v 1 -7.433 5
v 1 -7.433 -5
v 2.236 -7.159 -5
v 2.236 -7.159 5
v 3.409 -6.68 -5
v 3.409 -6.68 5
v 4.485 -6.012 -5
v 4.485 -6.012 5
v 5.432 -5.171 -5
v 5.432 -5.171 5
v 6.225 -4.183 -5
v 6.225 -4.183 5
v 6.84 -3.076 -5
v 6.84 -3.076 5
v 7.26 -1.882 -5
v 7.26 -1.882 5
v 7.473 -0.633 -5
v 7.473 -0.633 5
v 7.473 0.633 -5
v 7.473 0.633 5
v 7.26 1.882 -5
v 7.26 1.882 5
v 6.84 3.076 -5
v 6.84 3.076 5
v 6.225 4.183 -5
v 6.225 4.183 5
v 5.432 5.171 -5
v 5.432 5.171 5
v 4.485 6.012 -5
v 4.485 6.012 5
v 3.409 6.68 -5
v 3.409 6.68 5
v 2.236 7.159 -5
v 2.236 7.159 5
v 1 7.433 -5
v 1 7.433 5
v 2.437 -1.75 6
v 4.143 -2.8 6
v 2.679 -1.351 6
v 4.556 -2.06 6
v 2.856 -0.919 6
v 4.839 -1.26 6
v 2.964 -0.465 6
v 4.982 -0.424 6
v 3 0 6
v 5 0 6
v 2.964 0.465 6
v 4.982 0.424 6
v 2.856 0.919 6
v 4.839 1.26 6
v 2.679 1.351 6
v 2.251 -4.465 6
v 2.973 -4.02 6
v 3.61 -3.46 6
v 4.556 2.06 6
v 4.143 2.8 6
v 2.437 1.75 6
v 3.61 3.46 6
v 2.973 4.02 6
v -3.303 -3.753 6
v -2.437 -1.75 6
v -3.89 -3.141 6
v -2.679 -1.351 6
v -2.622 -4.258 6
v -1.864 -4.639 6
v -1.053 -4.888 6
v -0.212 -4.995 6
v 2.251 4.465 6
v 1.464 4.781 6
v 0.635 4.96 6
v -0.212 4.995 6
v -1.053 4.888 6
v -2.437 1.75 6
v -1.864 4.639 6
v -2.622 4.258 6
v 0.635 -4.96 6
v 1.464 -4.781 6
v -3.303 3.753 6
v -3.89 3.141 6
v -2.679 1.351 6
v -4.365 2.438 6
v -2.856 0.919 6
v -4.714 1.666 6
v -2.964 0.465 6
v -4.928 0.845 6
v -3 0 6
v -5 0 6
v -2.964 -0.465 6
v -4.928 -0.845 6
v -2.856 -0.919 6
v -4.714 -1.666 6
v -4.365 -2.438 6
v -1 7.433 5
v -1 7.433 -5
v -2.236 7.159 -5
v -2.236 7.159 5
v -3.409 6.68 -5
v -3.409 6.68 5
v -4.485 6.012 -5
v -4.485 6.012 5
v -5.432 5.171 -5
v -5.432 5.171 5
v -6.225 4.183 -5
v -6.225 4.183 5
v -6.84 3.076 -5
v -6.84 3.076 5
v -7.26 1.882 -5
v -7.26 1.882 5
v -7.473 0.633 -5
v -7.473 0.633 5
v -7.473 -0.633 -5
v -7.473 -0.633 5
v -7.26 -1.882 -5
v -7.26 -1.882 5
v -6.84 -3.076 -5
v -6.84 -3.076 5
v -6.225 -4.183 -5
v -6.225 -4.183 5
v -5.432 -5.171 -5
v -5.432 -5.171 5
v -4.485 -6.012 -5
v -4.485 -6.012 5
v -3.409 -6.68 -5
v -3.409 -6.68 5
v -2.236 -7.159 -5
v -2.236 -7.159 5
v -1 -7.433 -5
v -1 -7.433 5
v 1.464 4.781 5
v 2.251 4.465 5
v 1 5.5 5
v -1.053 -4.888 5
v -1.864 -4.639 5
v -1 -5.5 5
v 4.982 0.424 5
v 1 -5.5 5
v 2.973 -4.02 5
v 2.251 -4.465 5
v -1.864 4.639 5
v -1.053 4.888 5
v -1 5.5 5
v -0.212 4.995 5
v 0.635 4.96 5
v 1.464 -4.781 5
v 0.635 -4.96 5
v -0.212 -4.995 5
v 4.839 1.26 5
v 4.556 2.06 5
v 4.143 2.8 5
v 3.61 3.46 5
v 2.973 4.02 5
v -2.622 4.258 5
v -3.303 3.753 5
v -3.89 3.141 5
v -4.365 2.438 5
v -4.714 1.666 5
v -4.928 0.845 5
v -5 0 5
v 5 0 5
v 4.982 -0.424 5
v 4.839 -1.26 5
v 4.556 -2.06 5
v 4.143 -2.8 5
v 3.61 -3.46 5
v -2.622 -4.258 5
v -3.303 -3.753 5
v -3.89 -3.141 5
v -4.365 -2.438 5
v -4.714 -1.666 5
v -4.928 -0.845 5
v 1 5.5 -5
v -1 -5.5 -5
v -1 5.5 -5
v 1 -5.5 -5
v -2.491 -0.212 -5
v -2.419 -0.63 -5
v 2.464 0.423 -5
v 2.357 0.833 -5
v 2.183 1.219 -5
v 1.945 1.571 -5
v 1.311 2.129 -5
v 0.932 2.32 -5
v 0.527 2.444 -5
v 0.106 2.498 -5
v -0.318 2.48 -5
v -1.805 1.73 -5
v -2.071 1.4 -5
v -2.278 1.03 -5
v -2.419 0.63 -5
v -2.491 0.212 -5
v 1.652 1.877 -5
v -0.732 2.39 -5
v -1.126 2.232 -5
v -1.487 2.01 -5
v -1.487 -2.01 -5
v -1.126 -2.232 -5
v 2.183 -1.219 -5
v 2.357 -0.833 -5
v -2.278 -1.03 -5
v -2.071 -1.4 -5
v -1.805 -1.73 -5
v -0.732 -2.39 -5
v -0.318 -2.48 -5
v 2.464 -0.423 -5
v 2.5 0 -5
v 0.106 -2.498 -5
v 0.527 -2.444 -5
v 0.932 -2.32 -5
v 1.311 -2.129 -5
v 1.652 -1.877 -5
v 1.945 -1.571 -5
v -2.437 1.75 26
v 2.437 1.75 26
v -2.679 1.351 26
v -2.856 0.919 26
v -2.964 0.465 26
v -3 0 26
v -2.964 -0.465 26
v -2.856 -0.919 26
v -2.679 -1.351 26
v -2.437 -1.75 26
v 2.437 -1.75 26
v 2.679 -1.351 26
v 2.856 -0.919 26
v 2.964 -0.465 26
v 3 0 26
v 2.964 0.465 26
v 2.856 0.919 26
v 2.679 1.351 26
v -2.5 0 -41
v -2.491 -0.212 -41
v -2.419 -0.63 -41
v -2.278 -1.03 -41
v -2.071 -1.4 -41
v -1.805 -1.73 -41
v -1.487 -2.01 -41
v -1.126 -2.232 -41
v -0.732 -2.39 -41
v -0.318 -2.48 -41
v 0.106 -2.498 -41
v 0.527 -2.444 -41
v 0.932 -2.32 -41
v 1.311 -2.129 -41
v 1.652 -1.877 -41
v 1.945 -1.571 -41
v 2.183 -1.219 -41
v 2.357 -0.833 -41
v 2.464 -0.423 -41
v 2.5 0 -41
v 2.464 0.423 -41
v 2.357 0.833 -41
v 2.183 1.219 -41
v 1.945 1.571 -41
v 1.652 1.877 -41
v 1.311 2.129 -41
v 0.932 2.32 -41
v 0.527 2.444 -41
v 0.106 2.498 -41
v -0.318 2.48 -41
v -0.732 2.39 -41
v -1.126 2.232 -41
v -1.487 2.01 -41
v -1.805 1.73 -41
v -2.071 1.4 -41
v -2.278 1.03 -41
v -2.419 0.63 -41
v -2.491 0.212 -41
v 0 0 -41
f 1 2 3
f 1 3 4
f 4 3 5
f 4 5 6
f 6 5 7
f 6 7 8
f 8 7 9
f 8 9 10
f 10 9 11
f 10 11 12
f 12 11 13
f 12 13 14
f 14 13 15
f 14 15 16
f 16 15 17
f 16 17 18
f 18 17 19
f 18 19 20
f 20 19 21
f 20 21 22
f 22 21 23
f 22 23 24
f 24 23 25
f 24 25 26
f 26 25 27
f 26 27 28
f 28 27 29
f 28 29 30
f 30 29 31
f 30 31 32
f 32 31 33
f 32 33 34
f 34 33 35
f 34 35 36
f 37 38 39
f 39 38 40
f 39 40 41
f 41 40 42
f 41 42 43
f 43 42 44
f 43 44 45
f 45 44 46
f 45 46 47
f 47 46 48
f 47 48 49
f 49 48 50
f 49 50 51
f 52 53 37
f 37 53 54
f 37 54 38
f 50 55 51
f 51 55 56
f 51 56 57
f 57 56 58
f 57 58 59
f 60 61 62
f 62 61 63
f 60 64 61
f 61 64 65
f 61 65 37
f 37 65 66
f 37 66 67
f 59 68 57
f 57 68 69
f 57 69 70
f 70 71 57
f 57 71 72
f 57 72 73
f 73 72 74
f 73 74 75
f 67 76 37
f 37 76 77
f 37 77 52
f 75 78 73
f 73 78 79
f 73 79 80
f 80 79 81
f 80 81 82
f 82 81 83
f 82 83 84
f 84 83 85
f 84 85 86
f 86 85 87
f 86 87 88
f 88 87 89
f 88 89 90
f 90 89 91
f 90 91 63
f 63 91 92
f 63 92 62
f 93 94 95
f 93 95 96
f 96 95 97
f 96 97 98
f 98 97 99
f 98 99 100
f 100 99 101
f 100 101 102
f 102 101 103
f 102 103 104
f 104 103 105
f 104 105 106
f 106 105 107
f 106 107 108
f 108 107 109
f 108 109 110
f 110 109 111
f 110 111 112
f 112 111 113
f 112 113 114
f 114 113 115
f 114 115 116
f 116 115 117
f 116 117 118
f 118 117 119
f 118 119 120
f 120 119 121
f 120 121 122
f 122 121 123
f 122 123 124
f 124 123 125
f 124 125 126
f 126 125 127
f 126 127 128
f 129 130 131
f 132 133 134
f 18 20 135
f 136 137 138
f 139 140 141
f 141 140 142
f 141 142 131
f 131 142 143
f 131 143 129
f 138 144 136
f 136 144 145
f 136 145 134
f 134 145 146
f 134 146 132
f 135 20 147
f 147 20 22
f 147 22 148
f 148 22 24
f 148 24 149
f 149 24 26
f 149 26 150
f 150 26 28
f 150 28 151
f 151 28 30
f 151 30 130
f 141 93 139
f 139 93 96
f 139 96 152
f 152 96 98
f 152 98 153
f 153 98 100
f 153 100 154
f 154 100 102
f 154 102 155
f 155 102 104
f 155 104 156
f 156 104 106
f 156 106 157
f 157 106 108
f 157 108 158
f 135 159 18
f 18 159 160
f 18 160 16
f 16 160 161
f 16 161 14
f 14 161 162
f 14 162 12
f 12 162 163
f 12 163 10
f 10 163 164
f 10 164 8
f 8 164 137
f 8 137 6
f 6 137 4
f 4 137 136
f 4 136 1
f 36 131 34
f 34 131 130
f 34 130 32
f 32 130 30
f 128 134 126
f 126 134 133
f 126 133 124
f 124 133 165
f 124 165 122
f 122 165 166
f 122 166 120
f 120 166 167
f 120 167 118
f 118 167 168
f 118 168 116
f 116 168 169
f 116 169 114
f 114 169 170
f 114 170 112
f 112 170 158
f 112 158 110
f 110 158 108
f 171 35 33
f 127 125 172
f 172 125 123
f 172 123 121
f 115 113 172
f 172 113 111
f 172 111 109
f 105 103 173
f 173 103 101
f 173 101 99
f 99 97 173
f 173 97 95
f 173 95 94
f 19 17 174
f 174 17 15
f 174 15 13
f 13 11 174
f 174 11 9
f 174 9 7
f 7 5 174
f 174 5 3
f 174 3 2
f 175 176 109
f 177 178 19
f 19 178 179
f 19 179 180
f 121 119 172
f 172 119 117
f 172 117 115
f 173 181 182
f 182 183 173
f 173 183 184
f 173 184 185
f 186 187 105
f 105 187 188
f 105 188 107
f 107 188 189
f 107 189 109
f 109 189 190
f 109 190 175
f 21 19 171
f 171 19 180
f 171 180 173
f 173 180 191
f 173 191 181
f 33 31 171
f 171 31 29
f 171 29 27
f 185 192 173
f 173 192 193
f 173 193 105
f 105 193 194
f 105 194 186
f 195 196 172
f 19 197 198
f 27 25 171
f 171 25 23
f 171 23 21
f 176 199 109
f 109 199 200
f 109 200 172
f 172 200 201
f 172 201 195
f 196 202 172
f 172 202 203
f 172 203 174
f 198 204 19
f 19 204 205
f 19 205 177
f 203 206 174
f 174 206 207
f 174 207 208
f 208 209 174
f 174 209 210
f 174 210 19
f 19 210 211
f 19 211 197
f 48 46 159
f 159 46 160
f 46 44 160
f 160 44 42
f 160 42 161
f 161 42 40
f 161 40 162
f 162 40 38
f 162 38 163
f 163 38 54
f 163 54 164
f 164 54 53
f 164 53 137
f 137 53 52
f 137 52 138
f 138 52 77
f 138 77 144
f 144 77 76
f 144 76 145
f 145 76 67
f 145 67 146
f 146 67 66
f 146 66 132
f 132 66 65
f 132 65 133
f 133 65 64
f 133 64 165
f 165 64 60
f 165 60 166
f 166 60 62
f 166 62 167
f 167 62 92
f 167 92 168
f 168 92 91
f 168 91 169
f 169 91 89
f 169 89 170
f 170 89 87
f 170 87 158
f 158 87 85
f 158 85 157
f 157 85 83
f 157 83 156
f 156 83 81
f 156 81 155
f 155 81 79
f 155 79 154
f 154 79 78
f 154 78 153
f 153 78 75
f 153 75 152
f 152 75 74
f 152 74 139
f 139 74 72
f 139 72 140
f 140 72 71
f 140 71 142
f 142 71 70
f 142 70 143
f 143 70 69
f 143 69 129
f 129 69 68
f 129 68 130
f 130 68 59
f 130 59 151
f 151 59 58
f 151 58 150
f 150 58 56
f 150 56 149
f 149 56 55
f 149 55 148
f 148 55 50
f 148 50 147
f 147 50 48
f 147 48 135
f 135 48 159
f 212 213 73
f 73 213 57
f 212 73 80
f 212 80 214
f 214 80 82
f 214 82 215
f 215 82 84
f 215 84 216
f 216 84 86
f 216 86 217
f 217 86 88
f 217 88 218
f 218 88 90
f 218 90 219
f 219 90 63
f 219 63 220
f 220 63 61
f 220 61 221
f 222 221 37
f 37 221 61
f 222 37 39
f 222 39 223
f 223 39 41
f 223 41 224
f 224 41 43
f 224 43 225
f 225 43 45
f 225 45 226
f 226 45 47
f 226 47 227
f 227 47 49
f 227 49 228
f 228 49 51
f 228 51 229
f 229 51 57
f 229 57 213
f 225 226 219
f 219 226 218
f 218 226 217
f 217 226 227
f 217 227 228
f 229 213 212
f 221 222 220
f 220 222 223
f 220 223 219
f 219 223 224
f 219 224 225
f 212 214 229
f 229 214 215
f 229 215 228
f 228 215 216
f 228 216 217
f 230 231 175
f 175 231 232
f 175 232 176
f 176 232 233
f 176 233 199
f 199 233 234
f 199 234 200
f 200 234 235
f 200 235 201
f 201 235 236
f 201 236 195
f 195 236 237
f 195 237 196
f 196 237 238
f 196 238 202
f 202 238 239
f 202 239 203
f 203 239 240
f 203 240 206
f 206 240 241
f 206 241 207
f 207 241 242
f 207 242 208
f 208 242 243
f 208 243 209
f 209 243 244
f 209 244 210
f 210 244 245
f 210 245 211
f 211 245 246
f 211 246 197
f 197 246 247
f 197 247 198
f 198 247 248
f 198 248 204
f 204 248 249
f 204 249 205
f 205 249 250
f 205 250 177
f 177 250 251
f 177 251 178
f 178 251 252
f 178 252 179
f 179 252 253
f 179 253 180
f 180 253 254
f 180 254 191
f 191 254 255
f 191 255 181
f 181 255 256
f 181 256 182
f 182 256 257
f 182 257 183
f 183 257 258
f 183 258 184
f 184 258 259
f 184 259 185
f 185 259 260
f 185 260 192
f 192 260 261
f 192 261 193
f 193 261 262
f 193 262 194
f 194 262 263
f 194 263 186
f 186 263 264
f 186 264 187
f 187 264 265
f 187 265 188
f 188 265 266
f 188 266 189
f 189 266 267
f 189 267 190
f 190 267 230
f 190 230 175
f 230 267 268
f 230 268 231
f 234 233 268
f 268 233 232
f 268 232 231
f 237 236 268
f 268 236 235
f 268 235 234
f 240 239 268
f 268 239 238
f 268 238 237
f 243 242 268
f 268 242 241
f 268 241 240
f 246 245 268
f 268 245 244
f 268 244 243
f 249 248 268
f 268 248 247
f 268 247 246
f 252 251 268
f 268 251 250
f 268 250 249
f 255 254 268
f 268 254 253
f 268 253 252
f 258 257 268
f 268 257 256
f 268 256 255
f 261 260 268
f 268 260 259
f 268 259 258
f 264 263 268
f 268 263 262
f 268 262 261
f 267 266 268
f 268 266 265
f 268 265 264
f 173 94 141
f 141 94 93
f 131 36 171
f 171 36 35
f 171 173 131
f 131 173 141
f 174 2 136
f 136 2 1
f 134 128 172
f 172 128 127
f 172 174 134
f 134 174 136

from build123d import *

# Parameters (mm, degrees)
SKETCH_1_R          = 7.5
EXTRUDE_1_DEPTH     = 5
SKETCH_6_R          = 5
EXTRUDE_6_DEPTH     = 1
EXTRUDE_7_DEPTH     = 20
SKETCH_9_R          = 2.5
EXTRUDE_8_DEPTH     = 36
SKETCH_11_W         = 2
SKETCH_11_H         = 2
CUT_EXTRUDE_1_DEPTH = 10


with BuildPart() as part:
    # Эскиз1 → Бобышка-Вытянуть1 (new, symmetric)
    with BuildSketch(Plane.XY):
        Circle(SKETCH_1_R)
    extrude(amount=EXTRUDE_1_DEPTH, both=True)

    # Эскиз6 → Бобышка-Вытянуть6 (add)
    with BuildSketch(Plane.XY.offset(5)):
        Circle(SKETCH_6_R)
    extrude(amount=EXTRUDE_6_DEPTH)

    # Эскиз10 → Бобышка-Вытянуть7 (add)
    with BuildSketch(Plane.XY.offset(6)):
        with BuildLine():
            Line((2.436698586, 1.75), (-2.436698586, 1.75))
            ThreePointArc((-2.436698586, 1.75), (-3, 0), (-2.436698586, -1.75))
            Line((-2.436698586, -1.75), (2.436698586, -1.75))
            ThreePointArc((2.436698586, -1.75), (2.855704445, -0.919212772), (3, 0))
            ThreePointArc((3, 0), (2.855704445, 0.919212772), (2.436698586, 1.75))
        make_face()
    extrude(amount=EXTRUDE_7_DEPTH)

    # Эскиз9 → Бобышка-Вытянуть8 (add)
    with BuildSketch(Plane(origin=(0, 0, -5), x_dir=(-1, 0, 0), z_dir=(0, 0, -1))):
        with Locations(Location((0, 0, 0), (0, 0, 180))):
            Circle(SKETCH_9_R)
    extrude(amount=EXTRUDE_8_DEPTH)

    # Эскиз11 → Вырез-Вытянуть1 (cut)
    with BuildSketch(Plane.XY.offset(5)):
        with Locations((0, 6.5)):
            Rectangle(SKETCH_11_W, SKETCH_11_H)
        with Locations((0, -6.5)):
            Rectangle(SKETCH_11_W, SKETCH_11_H)
    extrude(amount=-CUT_EXTRUDE_1_DEPTH, mode=Mode.SUBTRACT)


solid = part.part
